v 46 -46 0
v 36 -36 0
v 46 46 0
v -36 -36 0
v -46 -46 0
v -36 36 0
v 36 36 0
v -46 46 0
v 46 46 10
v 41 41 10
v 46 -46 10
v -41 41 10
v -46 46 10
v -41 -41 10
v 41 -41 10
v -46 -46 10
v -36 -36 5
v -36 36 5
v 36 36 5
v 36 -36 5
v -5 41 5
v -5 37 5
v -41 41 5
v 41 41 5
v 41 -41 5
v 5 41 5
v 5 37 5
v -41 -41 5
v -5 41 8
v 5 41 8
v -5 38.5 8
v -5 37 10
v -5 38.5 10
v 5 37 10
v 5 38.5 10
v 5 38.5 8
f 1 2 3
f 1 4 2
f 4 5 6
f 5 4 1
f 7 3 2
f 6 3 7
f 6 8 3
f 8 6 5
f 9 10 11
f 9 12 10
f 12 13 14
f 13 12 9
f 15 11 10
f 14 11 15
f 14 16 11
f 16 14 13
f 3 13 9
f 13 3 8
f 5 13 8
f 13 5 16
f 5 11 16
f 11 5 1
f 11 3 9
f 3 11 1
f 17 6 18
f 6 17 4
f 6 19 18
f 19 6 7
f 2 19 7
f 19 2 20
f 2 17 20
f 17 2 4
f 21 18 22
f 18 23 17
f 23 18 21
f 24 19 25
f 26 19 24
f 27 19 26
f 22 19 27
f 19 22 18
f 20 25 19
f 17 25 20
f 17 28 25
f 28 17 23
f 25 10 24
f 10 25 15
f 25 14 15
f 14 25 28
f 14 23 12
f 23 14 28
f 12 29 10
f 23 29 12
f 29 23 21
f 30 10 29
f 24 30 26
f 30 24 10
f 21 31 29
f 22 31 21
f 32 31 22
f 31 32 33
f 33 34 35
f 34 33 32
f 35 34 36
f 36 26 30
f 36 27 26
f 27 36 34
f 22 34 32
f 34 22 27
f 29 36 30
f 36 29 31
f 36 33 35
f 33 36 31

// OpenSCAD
// file: local_modules/lcd.scad
LCD_X=76;
LCD_Y=1.5;
LCD_Z=138;
LCD_DISP_X=LCD_X - 1.5 * 2;
LCD_DISP_Z_OFFSET_FROM_BOTTOM=6;
LCD_DISP_Z=LCD_Z-LCD_DISP_Z_OFFSET_FROM_BOTTOM - 1.5;

module lcd(margin=0, draw_display_region=false) {
  translate([0, 0, LCD_Z/2]){
    cube(size=[LCD_X+margin, LCD_Y+margin, LCD_Z+margin], center=true);

    if(draw_display_region){
      translate([0, 0, -(LCD_Z - LCD_DISP_Z)/2 + LCD_DISP_Z_OFFSET_FROM_BOTTOM]) 
      color("green", 0.5)
      cube(size=[LCD_DISP_X, LCD_Y, LCD_DISP_Z], center=true);
    }
  }
}
// file: scad-utils/morphology.scad
// Copyright (c) 2013 Oskar Linde. All rights reserved.
// License: BSD
//
// This library contains basic 2D morphology operations
//
// outset(d=1)            - creates a polygon at an offset d outside a 2D shape
// inset(d=1)             - creates a polygon at an offset d inside a 2D shape
// fillet(r=1)            - adds fillets of radius r to all concave corners of a 2D shape
// rounding(r=1)          - adds rounding to all convex corners of a 2D shape
// shell(d,center=false)  - makes a shell of width d along the edge of a 2D shape
//                        - positive values of d places the shell on the outside
//                        - negative values of d places the shell on the inside
//                        - center=true and positive d places the shell centered on the edge

module outset(d=1) {
	// Bug workaround for older OpenSCAD versions
	if (version_num() < 20130424) render() outset_extruded(d) children();
	else minkowski() {
		circle(r=d);
		children();
	}
}

module outset_extruded(d=1) {
   projection(cut=true) minkowski() {
        cylinder(r=d);
        linear_extrude(center=true) children();
   }
}

module inset(d=1) {
	 render() inverse() outset(d=d) inverse() children();
}

module fillet(r=1) {
	inset(d=r) render() outset(d=r) children();
}

module rounding(r=1) {
	outset(d=r) inset(d=r) children();
}

module shell(d,center=false) {
	if (center && d > 0) {
		difference() {
			outset(d=d/2) children();
			inset(d=d/2) children();
		}
	}
	if (!center && d > 0) {
		difference() {
			outset(d=d) children();
			children();
		}
	}
	if (!center && d < 0) {
		difference() {
			children();
			inset(d=-d) children();
		}
	}
	if (d == 0) children();
}


// Below are for internal use only

module inverse() {
	difference() {
		square(1e5,center=true);
		children();
	}
}


// TEST CODE

use <mirror.scad>

module arrow(l=1,w=.6,t=0.15) {
	mirror_y() polygon([[0,0],[l,0],[l-w/2,w/2],[l-w/2-sqrt(2)*t,w/2],[l-t/2-sqrt(2)*t,t/2],[0,t/2]]);
}

module shape() {
	polygon([[0,0],[1,0],[1.5,1],[2.5,1],[2,-1],[0,-1]]);
}

if(0) assign($fn=32) {

	for (p = [0:10*3-1]) assign(o=floor(p/3)) {
		translate([(p%3)*2.5,-o*3]) {
			//%if (p % 3 == 1) translate([0,0,1]) shape();
			if (p % 3 == 0) shape();
			if (p % 3 == 1) translate([0.6,0]) arrow();
			if (p % 3 == 2) {
				if (o == 0) inset(d=0.3) shape();
				if (o == 1) outset(d=0.3) shape();
				if (o == 2) rounding(r=0.3) shape();
				if (o == 3) fillet(r=0.3) shape();
				if (o == 4) shell(d=0.3) shape();
				if (o == 5) shell(d=-0.3) shape();
				if (o == 6) shell(d=0.3,center=true) shape();
				if (o == 7) rounding(r=0.3) fillet(r=0.3) shape();
				if (o == 8) shell(d=0.3,center=true) fillet(r=0.3) rounding(r=0.3) shape();
				if (o == 9) shell(d=-0.3) fillet(r=0.3) rounding(r=0.3) shape();
			}
		}
	}
}
// file: scad-utils/mirror.scad
// Copyright (c) 2013 Oskar Linde. All rights reserved.
// License: BSD
//
// This library contains simple mirroring functions
//
// mirror_x()
// mirror_y()
// mirror_z()


module mirror_x() {
  union() {
    child();
    scale([-1,1,1]) child();
  }
}

module mirror_y() {
  union() {
    child();
    scale([1,-1,1]) child();
  }
}

module mirror_z() {
  union() {
    child();
    scale([1,1,-1]) child();
  }
}
// file: _kagedourou_top.scad
include <scad-utils/mirror.scad>
include <scad-utils/morphology.scad>

include <./local_modules/lcd.scad>


module lcd_for_top(){
  translate([0, KD_TOP_Y/2 - LCD_Y/2 - (KD_FRAME_INNER_T + 0.5), LCD_Z + KD_FRAME_T - 2]) 
  rotate([180, 0, 0]) 
  lcd(draw_display_region=true);
}

KD_FRAME_T=10;
KD_FRAME_INNER_T=5;

KD_TOP_X=LCD_X-2*2+KD_FRAME_T*2;
KD_TOP_Y=KD_TOP_X;
echo(str("KD_TOP_X=", KD_TOP_X));
echo(str("KD_TOP_Y=", KD_TOP_Y));

KD_TOP_DISP_HOLDER_X=10;
KD_TOP_DISP_HOLDER_Y=4*2;

module kagedourou_top_display_holder(args) {
  translate([0, KD_TOP_Y/2 - KD_FRAME_INNER_T, 0]){
    difference() {

      linear_extrude(height=KD_FRAME_T, center=!true, convexity=10, twist=0)
      square(size=[KD_TOP_DISP_HOLDER_X, KD_TOP_DISP_HOLDER_Y], center=true);

      translate([0, 0, KD_FRAME_T - 2]) 
      linear_extrude(height=KD_FRAME_T, center=!true, convexity=10, twist=0)
      square(size=[KD_TOP_DISP_HOLDER_X, (LCD_Y + 1) * 2], center=true);
    }

  }
}

module kagedourou_top() {
  difference() {
    linear_extrude(height=KD_FRAME_T, center=!true, convexity=10, twist=0)
    difference(){
      square(size=[KD_TOP_X, KD_TOP_Y], center=true);

      // top window
      offset(delta=-KD_FRAME_T)
      square(size=[KD_TOP_X, KD_TOP_Y], center=true);
    }

    translate([0, 0, 5]) 
    linear_extrude(height=KD_FRAME_T, center=!true, convexity=10, twist=0)
    offset(delta=(KD_FRAME_T - KD_FRAME_INNER_T))
    offset(delta=-KD_FRAME_T)
    square(size=[KD_TOP_X, KD_TOP_Y], center=true);
  }

  kagedourou_top_display_holder();
}

// kagedourou_top();
// main file
include <./_kagedourou_top.scad>

$fn=50;

%
lcd_for_top();

kagedourou_top();
